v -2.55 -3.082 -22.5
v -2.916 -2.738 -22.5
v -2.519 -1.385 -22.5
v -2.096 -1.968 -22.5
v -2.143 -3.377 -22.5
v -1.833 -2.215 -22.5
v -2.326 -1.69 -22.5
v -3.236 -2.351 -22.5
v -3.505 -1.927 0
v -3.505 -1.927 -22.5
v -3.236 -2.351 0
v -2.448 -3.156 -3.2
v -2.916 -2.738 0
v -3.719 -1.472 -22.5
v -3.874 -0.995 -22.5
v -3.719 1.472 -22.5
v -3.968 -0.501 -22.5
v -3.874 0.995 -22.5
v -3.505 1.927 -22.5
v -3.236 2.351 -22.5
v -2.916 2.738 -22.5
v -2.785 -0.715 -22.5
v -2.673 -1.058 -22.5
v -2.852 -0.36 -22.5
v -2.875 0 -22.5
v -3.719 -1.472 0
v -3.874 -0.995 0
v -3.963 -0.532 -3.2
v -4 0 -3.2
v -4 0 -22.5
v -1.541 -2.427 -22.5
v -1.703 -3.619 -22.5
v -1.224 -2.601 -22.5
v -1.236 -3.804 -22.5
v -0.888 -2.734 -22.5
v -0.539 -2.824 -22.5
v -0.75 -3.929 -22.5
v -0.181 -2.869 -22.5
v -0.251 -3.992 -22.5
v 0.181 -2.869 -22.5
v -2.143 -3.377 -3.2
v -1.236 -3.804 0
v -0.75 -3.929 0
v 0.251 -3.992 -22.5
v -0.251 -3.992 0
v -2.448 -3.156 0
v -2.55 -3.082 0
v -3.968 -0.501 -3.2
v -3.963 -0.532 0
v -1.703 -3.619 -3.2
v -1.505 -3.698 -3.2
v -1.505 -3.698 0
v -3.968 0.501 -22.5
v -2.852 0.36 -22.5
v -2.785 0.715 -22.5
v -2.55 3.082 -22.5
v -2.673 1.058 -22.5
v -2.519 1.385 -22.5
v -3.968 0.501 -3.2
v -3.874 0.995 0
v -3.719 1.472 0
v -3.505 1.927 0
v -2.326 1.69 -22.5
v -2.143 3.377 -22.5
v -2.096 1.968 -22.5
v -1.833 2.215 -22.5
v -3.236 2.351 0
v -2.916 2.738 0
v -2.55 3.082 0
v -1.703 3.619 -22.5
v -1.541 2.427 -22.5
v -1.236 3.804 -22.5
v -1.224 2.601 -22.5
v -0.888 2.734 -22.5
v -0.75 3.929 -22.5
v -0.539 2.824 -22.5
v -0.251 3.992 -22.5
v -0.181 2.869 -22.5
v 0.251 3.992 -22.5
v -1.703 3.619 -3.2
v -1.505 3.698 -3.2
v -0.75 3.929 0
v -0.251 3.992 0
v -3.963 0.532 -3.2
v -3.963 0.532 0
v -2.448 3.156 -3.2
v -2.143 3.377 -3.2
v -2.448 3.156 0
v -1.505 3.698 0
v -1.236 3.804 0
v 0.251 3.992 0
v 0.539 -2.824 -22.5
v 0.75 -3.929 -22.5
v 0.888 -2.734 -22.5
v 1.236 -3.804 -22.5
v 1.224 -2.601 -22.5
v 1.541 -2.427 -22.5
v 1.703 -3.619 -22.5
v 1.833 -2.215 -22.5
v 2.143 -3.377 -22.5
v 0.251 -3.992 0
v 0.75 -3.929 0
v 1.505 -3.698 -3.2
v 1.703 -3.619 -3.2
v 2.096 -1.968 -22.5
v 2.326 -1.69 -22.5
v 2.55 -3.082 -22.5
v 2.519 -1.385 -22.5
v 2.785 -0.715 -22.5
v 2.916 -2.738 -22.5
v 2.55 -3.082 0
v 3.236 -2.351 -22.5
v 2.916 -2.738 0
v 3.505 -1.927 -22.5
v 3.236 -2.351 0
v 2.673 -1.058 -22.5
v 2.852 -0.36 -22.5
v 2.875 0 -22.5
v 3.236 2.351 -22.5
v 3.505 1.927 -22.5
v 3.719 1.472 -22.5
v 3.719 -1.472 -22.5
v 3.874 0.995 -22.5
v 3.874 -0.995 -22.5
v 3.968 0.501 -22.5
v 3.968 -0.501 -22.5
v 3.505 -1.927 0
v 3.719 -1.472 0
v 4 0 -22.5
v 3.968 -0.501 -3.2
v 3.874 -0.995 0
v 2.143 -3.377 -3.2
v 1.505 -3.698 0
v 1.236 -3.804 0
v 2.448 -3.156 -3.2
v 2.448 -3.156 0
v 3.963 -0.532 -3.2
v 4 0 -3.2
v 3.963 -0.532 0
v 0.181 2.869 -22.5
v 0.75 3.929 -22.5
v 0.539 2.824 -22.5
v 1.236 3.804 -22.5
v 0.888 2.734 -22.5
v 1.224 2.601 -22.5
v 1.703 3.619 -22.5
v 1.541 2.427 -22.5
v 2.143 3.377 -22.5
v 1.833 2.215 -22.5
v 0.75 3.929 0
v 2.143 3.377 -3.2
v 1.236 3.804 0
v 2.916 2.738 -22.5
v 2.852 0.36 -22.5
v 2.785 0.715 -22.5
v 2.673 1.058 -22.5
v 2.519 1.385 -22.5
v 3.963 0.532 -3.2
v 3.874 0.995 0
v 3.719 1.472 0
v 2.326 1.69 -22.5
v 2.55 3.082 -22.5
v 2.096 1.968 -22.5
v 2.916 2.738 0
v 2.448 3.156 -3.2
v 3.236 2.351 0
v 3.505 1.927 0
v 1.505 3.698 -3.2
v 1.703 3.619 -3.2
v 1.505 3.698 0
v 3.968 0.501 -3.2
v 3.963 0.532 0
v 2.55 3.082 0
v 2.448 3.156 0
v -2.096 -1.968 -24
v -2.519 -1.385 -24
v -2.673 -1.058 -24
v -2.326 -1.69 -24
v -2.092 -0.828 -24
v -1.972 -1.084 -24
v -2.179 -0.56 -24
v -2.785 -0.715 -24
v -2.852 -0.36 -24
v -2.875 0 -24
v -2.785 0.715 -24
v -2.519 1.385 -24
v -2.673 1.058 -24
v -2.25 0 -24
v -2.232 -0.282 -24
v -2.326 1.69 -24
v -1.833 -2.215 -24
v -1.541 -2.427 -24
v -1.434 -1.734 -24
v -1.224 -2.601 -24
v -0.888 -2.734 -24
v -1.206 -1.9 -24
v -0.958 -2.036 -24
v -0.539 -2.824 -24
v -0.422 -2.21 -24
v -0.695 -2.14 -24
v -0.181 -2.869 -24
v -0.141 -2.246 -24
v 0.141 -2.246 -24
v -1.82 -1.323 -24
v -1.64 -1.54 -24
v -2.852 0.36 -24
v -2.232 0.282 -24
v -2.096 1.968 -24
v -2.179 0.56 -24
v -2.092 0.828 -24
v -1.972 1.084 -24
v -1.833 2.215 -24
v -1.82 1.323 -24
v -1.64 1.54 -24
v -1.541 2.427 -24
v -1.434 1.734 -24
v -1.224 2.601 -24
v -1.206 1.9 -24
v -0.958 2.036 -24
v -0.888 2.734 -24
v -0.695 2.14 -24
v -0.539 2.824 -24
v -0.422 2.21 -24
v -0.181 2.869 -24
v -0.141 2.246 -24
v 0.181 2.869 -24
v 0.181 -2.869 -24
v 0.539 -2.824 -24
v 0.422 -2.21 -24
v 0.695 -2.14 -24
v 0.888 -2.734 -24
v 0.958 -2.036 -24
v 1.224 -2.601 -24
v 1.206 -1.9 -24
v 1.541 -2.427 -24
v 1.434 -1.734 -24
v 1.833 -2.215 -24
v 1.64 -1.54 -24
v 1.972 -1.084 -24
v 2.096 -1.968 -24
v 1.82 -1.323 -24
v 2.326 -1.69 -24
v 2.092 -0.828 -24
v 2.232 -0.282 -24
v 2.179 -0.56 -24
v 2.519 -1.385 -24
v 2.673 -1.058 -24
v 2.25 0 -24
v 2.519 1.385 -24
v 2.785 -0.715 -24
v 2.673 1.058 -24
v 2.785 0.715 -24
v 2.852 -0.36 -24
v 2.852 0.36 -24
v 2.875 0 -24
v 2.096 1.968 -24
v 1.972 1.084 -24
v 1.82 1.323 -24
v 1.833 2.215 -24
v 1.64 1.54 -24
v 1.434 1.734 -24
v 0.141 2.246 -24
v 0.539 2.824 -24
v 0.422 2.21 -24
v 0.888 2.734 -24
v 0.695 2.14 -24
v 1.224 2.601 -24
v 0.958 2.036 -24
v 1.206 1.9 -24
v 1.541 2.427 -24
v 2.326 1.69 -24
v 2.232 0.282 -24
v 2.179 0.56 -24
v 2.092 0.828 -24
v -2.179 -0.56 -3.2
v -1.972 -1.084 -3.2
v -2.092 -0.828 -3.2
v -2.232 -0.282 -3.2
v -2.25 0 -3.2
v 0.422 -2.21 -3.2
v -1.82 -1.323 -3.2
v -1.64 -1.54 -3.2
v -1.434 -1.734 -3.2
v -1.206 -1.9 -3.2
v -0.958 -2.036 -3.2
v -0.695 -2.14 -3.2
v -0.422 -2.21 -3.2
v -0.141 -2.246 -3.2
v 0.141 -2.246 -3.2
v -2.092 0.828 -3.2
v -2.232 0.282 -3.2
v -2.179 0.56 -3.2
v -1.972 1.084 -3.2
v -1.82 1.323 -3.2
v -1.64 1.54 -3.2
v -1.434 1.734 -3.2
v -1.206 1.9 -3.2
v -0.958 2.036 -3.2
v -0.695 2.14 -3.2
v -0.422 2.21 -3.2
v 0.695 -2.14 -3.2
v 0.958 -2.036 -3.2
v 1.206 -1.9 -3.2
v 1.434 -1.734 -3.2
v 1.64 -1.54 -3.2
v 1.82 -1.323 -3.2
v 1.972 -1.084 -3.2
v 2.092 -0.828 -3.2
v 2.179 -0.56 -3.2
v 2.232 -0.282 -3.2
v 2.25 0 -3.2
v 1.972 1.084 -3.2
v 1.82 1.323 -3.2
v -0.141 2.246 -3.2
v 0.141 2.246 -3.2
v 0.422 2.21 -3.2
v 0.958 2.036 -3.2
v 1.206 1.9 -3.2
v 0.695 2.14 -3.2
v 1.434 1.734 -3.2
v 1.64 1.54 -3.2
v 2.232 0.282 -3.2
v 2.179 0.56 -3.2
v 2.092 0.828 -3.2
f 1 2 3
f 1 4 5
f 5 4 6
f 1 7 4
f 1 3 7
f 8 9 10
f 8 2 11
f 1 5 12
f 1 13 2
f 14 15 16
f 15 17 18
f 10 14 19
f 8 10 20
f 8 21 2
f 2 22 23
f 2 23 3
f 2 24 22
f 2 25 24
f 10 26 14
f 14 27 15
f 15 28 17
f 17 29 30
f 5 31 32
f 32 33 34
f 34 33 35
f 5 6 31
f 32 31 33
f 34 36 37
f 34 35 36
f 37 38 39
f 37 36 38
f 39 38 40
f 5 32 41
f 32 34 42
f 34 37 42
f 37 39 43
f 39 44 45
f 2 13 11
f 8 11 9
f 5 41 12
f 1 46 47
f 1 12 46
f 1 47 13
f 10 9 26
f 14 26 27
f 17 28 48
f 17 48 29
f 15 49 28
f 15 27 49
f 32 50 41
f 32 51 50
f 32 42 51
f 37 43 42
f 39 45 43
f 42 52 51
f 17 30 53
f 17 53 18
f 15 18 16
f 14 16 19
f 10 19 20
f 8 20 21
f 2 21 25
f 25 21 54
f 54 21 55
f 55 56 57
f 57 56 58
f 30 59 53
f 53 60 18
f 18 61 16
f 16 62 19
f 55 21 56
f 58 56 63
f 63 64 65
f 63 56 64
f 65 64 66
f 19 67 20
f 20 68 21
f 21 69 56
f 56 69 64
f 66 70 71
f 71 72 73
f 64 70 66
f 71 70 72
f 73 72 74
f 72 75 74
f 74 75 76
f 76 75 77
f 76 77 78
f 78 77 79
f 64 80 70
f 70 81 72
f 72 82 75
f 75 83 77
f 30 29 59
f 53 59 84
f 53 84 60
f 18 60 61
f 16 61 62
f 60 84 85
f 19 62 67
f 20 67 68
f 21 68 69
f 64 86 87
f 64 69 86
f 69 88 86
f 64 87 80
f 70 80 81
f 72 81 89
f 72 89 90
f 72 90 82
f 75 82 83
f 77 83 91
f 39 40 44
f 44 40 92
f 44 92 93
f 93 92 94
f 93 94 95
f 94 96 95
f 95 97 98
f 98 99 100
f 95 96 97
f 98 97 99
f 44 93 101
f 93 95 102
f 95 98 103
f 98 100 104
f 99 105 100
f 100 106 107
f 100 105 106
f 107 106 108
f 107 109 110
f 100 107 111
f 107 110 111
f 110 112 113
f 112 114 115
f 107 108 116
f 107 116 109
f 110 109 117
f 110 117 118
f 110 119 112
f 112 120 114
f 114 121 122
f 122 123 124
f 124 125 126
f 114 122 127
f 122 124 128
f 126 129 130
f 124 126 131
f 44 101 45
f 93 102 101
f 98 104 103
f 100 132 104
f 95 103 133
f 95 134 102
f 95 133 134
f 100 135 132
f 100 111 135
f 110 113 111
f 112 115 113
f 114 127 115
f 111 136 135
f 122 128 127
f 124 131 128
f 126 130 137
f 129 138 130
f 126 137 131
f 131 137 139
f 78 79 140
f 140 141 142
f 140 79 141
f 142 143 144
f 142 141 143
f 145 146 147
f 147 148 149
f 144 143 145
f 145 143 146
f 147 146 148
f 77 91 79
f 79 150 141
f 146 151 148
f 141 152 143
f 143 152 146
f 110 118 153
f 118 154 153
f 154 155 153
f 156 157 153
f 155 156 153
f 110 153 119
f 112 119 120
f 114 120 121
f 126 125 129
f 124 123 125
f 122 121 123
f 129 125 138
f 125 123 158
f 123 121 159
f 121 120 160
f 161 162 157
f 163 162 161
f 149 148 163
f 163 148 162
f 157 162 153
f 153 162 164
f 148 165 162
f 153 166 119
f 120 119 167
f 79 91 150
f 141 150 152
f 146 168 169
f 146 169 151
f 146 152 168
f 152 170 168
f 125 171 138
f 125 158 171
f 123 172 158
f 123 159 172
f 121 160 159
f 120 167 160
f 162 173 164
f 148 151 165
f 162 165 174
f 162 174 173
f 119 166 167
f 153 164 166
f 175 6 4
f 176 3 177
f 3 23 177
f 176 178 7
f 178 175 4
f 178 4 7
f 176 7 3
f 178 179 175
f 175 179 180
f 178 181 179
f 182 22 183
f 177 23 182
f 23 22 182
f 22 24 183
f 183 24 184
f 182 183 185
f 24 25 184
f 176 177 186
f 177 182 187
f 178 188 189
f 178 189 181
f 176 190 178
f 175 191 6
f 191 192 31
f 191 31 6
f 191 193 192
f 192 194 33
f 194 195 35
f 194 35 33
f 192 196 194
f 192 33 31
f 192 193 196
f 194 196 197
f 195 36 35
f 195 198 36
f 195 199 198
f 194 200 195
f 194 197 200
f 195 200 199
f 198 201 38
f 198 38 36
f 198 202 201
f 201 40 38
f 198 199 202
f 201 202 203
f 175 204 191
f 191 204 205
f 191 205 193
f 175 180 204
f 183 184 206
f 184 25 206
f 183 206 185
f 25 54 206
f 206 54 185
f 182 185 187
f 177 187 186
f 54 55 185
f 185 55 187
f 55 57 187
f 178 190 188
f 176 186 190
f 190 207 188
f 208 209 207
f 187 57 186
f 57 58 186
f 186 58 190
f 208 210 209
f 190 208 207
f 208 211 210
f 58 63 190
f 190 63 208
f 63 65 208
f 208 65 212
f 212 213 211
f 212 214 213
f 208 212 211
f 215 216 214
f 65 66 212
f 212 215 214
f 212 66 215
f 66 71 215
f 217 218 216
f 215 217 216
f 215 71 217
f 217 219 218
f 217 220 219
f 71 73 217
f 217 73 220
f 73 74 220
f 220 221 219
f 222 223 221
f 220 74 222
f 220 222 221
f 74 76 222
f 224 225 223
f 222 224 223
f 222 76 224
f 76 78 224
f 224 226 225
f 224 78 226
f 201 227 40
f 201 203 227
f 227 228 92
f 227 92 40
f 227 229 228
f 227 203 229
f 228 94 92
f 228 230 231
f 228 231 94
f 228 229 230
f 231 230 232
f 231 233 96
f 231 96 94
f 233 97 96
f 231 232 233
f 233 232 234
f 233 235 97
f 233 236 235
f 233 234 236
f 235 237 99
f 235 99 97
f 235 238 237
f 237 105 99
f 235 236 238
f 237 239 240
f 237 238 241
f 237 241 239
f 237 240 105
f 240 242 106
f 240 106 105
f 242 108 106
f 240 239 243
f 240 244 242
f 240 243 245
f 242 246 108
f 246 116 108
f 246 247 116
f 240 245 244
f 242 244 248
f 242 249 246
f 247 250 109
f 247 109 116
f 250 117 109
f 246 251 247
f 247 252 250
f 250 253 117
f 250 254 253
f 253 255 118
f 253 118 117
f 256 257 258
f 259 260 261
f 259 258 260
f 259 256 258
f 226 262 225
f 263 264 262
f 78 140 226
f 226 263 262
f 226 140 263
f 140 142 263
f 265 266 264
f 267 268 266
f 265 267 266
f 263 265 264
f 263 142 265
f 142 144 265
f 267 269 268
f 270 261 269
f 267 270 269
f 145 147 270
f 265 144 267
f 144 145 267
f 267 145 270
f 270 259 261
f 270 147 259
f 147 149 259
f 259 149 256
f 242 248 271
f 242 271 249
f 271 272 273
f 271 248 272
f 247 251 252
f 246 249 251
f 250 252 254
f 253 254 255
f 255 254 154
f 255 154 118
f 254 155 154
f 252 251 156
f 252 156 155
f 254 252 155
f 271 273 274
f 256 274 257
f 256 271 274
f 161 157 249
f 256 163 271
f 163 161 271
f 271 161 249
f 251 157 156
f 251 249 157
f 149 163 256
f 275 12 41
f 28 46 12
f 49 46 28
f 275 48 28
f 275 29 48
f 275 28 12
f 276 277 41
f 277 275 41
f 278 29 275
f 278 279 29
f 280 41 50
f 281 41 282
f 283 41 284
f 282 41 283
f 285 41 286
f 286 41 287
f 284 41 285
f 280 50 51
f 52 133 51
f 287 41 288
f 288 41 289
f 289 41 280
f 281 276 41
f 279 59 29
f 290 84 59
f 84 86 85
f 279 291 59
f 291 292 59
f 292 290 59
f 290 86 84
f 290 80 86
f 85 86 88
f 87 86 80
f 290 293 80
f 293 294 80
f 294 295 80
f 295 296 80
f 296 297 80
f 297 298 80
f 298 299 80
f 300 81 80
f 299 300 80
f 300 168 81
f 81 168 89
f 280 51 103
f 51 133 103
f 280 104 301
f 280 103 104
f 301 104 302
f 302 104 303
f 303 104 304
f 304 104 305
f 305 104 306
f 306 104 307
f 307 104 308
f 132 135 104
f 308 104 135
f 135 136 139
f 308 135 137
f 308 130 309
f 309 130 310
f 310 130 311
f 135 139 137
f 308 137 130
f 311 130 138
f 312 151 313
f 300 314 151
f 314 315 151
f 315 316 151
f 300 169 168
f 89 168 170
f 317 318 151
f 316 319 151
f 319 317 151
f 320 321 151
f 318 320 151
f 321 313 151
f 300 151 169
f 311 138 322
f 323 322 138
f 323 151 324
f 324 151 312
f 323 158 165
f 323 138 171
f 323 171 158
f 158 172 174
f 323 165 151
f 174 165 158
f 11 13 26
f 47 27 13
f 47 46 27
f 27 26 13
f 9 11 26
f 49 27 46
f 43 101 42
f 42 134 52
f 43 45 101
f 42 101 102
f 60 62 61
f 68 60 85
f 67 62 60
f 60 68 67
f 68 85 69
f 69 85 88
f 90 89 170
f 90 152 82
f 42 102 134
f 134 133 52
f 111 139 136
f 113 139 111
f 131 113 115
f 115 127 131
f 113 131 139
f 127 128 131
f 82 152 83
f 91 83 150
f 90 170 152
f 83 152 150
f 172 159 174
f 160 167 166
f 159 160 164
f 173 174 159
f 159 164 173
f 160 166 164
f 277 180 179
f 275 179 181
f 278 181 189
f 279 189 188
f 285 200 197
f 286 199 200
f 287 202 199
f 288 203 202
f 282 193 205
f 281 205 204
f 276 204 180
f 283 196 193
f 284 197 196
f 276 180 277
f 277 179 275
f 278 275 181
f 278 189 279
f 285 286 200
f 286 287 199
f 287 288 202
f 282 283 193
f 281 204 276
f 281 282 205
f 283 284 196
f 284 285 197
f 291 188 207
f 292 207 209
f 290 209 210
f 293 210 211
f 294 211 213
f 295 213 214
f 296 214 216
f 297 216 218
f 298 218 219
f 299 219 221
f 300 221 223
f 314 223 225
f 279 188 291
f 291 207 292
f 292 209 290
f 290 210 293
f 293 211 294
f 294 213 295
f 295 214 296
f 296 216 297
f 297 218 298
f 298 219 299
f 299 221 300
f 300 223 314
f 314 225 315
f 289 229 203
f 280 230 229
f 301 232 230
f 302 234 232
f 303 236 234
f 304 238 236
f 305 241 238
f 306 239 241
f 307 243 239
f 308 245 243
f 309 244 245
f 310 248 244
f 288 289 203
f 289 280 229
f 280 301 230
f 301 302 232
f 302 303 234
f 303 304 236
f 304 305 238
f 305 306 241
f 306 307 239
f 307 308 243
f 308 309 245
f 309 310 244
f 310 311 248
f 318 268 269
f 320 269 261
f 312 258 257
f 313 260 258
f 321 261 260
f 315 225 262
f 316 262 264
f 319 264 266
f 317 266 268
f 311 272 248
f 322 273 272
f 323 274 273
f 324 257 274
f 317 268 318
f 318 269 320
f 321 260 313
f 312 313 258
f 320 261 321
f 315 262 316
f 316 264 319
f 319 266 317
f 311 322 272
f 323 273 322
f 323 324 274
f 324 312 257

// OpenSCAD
$fn = 50;

difference() {
	union() {
		translate(v = [0, 0, -22.5]) {
			cylinder(h = 22.5, r = 4.0);
		}
		#translate(v = [0, 0, -24.0]) {
			cylinder(h = 24, r = 2.875);
		}
	}
	union() {
		translate(v = [0, 0, 0]) {
			rotate(a = [0, 0, 0]) {
				difference() {
					union() {
						translate(v = [0, 0, -3.2]) {
							linear_extrude(height = 3.2) {
								polygon(points = [[4.2698, 0.0], [2.1349000000000005, 3.697755269078796], [-2.134899999999999, 3.6977552690787965], [-4.2698, 5.228996902999369e-16], [-2.134900000000002, -3.6977552690787956], [2.1348999999999974, -3.697755269078798]]);
							}
						}
					}
					union();
				}
			}
		}
		#translate(v = [0, 0, -100.0]) {
			cylinder(h = 200, r = 2.25);
		}
	}
}
